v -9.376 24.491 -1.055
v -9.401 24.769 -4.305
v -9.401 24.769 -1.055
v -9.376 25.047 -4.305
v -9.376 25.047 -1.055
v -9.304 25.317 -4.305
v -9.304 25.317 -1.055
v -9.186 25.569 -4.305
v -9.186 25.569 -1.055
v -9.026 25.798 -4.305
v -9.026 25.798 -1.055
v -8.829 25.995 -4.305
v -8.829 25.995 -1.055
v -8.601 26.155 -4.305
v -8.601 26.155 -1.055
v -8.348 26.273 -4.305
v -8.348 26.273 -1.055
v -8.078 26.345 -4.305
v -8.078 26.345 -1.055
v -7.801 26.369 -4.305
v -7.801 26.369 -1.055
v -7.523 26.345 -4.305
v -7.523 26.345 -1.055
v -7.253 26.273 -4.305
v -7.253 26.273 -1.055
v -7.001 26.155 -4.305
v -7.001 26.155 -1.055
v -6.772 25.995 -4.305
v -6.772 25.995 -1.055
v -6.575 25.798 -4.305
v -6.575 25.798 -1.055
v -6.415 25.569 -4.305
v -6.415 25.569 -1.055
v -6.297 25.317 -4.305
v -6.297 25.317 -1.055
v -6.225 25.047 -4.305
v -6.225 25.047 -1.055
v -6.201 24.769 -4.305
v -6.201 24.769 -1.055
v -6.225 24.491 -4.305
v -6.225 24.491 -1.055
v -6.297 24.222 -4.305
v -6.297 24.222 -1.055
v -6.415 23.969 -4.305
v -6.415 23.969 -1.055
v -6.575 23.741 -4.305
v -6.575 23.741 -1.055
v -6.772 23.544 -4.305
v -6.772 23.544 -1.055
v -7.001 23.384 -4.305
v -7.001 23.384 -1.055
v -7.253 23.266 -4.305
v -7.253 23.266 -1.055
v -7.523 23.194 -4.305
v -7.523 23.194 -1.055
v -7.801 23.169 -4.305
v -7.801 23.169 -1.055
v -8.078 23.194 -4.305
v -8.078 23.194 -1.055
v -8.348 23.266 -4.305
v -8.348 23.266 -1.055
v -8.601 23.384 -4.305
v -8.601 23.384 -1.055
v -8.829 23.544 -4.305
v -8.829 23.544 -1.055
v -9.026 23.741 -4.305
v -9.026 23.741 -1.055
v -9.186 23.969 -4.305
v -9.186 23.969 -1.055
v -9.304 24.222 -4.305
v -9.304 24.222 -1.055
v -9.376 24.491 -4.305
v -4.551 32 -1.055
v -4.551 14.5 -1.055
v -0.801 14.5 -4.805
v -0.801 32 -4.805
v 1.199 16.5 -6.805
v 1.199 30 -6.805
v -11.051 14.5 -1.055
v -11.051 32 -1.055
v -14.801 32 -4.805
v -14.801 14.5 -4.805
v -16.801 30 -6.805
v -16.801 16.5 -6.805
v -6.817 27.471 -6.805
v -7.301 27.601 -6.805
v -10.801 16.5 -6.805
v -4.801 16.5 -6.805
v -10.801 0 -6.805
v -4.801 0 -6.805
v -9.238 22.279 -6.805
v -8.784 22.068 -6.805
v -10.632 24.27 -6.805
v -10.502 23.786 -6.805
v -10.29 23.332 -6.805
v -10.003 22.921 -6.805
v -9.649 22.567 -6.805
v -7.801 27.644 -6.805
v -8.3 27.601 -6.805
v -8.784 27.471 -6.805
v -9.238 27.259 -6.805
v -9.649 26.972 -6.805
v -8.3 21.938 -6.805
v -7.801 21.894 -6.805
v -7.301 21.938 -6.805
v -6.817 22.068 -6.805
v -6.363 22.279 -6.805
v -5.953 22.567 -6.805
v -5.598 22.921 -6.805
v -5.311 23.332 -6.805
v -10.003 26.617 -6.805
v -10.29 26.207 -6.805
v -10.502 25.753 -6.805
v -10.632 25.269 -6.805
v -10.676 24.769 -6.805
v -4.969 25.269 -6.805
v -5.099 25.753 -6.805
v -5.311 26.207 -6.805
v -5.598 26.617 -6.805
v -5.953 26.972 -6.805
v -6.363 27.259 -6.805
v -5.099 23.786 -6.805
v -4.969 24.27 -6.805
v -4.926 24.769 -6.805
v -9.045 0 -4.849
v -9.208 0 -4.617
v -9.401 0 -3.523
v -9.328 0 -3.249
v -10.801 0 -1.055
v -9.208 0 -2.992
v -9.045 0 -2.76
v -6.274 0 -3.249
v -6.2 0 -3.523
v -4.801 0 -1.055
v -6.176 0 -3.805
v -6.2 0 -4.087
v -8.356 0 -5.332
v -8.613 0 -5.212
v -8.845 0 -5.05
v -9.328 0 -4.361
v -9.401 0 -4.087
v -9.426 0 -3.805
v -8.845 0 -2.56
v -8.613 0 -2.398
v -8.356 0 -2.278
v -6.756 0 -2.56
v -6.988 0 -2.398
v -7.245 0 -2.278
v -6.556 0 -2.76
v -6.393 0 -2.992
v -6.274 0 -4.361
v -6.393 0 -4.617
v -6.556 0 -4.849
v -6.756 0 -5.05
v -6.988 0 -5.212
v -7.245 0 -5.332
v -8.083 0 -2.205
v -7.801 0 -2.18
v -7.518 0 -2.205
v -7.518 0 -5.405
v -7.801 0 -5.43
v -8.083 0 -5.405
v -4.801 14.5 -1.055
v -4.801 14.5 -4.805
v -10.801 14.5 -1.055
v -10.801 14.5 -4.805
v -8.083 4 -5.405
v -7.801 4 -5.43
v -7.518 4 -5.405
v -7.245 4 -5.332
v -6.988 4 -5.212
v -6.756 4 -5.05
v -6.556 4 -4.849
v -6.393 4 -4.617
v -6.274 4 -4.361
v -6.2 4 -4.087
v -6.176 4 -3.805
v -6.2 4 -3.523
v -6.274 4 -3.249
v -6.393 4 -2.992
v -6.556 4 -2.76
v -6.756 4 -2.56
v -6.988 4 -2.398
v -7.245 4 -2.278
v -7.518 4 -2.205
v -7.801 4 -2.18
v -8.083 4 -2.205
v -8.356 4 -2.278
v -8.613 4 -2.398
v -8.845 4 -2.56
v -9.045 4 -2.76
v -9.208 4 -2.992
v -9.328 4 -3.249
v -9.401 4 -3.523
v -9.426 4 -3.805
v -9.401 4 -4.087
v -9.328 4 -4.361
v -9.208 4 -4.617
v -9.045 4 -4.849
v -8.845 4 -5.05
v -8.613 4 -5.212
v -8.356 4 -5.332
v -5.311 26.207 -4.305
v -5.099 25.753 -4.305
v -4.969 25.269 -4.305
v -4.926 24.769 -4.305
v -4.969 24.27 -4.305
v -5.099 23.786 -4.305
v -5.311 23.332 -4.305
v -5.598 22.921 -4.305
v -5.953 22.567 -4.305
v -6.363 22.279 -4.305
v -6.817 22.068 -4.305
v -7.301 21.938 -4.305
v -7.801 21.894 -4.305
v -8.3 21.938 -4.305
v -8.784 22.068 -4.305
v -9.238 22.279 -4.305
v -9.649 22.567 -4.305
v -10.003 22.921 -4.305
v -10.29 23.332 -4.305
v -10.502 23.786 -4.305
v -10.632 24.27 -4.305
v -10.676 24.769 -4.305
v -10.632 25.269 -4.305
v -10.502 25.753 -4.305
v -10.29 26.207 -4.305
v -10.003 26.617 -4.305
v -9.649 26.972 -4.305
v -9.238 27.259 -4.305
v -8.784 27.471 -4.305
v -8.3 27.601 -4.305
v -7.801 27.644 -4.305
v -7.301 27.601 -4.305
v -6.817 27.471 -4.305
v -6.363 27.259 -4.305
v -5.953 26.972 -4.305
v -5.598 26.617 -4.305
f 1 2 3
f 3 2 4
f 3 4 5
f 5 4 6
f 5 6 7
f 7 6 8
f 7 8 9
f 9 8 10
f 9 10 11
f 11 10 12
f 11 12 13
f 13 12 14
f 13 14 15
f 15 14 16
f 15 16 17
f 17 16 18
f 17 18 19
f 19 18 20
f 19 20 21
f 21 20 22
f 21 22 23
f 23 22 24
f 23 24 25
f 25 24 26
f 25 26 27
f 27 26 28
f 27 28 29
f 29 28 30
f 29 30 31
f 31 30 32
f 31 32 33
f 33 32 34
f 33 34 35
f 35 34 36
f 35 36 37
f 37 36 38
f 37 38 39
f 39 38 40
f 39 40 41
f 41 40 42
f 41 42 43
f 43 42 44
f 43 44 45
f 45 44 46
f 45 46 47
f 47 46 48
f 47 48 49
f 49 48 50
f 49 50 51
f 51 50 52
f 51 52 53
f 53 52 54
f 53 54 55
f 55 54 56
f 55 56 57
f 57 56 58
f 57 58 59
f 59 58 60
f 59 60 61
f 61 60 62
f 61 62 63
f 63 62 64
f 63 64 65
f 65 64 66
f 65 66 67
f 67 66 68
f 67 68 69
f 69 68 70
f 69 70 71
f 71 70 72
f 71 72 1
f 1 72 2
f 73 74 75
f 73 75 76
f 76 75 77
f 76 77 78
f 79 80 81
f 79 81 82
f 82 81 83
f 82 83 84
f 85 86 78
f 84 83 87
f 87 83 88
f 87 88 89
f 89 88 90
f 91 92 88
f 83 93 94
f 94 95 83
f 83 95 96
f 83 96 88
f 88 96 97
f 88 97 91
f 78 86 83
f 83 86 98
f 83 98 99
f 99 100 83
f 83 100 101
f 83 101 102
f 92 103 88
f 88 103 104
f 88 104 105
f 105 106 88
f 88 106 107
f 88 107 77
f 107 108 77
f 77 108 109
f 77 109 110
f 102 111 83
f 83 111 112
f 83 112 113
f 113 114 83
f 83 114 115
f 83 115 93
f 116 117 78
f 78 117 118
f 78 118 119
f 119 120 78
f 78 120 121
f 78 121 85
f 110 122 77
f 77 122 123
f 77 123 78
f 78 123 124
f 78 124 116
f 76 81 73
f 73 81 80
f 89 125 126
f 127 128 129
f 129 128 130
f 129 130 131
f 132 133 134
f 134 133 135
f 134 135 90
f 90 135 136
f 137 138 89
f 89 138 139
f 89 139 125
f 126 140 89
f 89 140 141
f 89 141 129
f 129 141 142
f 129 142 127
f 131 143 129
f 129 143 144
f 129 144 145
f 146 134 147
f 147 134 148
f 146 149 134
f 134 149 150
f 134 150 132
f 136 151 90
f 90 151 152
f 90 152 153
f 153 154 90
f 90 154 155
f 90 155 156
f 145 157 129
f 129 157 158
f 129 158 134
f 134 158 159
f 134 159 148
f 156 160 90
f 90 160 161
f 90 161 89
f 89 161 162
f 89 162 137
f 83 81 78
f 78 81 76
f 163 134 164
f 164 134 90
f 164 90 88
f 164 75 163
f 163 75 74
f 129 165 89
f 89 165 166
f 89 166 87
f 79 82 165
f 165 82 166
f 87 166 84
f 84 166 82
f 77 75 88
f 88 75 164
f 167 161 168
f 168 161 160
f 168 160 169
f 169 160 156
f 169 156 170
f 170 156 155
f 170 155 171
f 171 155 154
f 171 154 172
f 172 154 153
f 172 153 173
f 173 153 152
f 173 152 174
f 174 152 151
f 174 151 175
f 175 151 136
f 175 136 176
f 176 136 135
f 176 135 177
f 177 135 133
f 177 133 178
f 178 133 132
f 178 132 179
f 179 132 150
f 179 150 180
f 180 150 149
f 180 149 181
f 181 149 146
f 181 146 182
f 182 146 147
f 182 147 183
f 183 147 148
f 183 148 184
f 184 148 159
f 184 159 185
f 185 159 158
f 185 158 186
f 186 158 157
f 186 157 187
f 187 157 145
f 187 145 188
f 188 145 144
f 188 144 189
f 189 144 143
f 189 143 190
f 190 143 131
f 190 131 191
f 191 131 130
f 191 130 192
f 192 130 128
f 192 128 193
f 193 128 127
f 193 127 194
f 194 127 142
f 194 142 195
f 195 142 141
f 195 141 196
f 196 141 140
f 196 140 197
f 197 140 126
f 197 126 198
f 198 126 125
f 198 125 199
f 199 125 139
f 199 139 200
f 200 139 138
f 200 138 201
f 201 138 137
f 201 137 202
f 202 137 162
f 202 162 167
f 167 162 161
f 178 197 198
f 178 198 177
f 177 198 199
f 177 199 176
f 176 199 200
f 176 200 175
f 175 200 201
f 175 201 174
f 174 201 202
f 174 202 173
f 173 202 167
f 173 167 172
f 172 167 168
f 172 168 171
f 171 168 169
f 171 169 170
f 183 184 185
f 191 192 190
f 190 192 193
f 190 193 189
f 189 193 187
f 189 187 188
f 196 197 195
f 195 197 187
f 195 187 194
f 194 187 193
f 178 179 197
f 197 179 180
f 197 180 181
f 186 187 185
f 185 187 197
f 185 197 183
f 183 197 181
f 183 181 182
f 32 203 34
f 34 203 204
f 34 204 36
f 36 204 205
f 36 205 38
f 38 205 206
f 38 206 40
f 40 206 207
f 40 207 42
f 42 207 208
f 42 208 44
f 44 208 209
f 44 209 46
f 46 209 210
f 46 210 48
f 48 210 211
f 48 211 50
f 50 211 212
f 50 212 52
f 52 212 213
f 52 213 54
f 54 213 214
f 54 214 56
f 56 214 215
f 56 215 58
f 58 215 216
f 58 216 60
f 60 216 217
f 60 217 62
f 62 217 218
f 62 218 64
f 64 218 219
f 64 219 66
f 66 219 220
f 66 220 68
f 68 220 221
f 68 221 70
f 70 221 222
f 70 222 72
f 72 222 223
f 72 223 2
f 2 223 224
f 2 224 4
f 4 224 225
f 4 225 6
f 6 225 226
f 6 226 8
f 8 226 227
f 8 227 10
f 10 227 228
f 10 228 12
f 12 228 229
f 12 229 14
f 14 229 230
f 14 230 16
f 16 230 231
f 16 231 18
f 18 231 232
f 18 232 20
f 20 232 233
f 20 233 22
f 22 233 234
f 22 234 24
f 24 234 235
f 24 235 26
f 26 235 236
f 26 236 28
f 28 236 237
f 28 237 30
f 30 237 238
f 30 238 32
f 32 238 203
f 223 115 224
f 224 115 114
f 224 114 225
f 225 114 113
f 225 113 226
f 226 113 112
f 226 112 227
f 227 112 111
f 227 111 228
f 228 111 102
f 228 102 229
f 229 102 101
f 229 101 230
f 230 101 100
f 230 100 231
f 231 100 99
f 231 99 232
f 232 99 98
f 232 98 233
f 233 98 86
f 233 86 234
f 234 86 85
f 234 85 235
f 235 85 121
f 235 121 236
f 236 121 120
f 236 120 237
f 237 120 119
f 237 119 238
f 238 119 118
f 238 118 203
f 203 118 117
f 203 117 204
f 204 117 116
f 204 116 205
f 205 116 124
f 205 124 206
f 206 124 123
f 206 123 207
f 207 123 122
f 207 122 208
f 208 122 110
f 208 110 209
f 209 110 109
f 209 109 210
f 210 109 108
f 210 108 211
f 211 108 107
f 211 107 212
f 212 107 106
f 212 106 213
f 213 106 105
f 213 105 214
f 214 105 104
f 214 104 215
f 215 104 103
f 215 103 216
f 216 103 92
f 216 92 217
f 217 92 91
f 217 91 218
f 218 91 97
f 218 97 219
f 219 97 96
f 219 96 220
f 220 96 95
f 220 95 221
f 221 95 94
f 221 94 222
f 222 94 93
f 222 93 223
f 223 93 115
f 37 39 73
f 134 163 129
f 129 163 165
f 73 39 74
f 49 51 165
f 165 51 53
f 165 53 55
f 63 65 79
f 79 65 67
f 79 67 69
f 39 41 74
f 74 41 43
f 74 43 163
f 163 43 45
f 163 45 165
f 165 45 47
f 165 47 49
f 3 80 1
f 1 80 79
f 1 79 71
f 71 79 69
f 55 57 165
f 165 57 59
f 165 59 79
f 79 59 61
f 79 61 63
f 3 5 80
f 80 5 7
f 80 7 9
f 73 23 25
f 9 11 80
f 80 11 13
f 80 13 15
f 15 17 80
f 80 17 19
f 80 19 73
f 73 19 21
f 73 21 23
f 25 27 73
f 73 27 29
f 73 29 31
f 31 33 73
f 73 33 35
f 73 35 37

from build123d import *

# Parameters (mm, degrees)
BOSS_EXTRUDE1_DEPTH = 32
CHAMFER1_SIZE       = 2
CUT_EXTRUDE1_DEPTH  = 14.5
CHAMFER2_SIZE       = 2
SKETCH3_R           = 1.625
CUT_EXTRUDE2_DEPTH  = 4
SKETCH4_R           = 1.6
CUT_EXTRUDE3_DEPTH  = 7
SKETCH5_R           = 2.875
CUT_EXTRUDE4_DEPTH  = 2.5
SKETCH6_W           = 9.951006948
SKETCH6_H           = 32
CUT_EXTRUDE5_DEPTH  = 0.25


with BuildPart() as part:
    # Sketch1 → Boss-Extrude1 (new body)
    with BuildSketch(Plane(origin=(0, 0, 0), x_dir=(1, 0, 0), z_dir=(0, 1, 0))):
        Polygon((-16.800646523, 6.80487106), (1.199353477, 6.80487106), (-4.800646523, 0.80487106), (-10.800646523, 0.80487106), align=None)
    extrude(amount=BOSS_EXTRUDE1_DEPTH)

    # Chamfer1
    chamfer1_edges = [part.edges().sort_by_distance(p)[0] for p in [
        (-7.800646523, 32, -6.80487106),
    ]]
    chamfer(chamfer1_edges, length=CHAMFER1_SIZE)

    # Sketch2 → Cut-Extrude1 (cut)
    with BuildSketch(Plane.XZ):
        Polygon((-4.800646523, -0.80487106), (-4.800646523, -6.80487106), (1.199353477, -6.80487106), align=None)
        Polygon((-10.800646523, -0.80487106), (-10.800646523, -6.80487106), (-16.800646523, -6.80487106), align=None)
    extrude(amount=-CUT_EXTRUDE1_DEPTH, mode=Mode.SUBTRACT)

    # Chamfer2
    chamfer2_edges = [part.edges().sort_by_distance(p)[0] for p in [
        (-1.800646523, 14.5, -6.80487106),
        (-13.800646523, 14.5, -6.80487106),
    ]]
    chamfer(chamfer2_edges, length=CHAMFER2_SIZE)

    # Sketch3 → Cut-Extrude2 (cut)
    with BuildSketch(Plane.XZ):
        with Locations((-7.800646523, -3.80487106)):
            Circle(SKETCH3_R)
    extrude(amount=-CUT_EXTRUDE2_DEPTH, mode=Mode.SUBTRACT)

    # Sketch4 → Cut-Extrude3 (cut, through all)
    with BuildSketch(Plane(origin=(0, 0, -6.80487106), x_dir=(-1, 0, 0), z_dir=(0, 0, -1))):
        with Locations((7.800646523, 24.7693)):
            Circle(SKETCH4_R)
    extrude(amount=-CUT_EXTRUDE3_DEPTH, mode=Mode.SUBTRACT)

    # Sketch5 → Cut-Extrude4 (cut)
    with BuildSketch(Plane(origin=(0, 0, -6.80487106), x_dir=(-1, 0, 0), z_dir=(0, 0, -1))):
        with Locations((7.800646523, 24.7693)):
            Circle(SKETCH5_R)
    extrude(amount=-CUT_EXTRUDE4_DEPTH, mode=Mode.SUBTRACT)

    # Sketch6 → Cut-Extrude5 (cut)
    with BuildSketch(Plane.XY.offset(-0.80487106)):
        with Locations((-7.355555637, 16)):
            Rectangle(SKETCH6_W, SKETCH6_H)
    extrude(amount=-CUT_EXTRUDE5_DEPTH, mode=Mode.SUBTRACT)


solid = part.part
